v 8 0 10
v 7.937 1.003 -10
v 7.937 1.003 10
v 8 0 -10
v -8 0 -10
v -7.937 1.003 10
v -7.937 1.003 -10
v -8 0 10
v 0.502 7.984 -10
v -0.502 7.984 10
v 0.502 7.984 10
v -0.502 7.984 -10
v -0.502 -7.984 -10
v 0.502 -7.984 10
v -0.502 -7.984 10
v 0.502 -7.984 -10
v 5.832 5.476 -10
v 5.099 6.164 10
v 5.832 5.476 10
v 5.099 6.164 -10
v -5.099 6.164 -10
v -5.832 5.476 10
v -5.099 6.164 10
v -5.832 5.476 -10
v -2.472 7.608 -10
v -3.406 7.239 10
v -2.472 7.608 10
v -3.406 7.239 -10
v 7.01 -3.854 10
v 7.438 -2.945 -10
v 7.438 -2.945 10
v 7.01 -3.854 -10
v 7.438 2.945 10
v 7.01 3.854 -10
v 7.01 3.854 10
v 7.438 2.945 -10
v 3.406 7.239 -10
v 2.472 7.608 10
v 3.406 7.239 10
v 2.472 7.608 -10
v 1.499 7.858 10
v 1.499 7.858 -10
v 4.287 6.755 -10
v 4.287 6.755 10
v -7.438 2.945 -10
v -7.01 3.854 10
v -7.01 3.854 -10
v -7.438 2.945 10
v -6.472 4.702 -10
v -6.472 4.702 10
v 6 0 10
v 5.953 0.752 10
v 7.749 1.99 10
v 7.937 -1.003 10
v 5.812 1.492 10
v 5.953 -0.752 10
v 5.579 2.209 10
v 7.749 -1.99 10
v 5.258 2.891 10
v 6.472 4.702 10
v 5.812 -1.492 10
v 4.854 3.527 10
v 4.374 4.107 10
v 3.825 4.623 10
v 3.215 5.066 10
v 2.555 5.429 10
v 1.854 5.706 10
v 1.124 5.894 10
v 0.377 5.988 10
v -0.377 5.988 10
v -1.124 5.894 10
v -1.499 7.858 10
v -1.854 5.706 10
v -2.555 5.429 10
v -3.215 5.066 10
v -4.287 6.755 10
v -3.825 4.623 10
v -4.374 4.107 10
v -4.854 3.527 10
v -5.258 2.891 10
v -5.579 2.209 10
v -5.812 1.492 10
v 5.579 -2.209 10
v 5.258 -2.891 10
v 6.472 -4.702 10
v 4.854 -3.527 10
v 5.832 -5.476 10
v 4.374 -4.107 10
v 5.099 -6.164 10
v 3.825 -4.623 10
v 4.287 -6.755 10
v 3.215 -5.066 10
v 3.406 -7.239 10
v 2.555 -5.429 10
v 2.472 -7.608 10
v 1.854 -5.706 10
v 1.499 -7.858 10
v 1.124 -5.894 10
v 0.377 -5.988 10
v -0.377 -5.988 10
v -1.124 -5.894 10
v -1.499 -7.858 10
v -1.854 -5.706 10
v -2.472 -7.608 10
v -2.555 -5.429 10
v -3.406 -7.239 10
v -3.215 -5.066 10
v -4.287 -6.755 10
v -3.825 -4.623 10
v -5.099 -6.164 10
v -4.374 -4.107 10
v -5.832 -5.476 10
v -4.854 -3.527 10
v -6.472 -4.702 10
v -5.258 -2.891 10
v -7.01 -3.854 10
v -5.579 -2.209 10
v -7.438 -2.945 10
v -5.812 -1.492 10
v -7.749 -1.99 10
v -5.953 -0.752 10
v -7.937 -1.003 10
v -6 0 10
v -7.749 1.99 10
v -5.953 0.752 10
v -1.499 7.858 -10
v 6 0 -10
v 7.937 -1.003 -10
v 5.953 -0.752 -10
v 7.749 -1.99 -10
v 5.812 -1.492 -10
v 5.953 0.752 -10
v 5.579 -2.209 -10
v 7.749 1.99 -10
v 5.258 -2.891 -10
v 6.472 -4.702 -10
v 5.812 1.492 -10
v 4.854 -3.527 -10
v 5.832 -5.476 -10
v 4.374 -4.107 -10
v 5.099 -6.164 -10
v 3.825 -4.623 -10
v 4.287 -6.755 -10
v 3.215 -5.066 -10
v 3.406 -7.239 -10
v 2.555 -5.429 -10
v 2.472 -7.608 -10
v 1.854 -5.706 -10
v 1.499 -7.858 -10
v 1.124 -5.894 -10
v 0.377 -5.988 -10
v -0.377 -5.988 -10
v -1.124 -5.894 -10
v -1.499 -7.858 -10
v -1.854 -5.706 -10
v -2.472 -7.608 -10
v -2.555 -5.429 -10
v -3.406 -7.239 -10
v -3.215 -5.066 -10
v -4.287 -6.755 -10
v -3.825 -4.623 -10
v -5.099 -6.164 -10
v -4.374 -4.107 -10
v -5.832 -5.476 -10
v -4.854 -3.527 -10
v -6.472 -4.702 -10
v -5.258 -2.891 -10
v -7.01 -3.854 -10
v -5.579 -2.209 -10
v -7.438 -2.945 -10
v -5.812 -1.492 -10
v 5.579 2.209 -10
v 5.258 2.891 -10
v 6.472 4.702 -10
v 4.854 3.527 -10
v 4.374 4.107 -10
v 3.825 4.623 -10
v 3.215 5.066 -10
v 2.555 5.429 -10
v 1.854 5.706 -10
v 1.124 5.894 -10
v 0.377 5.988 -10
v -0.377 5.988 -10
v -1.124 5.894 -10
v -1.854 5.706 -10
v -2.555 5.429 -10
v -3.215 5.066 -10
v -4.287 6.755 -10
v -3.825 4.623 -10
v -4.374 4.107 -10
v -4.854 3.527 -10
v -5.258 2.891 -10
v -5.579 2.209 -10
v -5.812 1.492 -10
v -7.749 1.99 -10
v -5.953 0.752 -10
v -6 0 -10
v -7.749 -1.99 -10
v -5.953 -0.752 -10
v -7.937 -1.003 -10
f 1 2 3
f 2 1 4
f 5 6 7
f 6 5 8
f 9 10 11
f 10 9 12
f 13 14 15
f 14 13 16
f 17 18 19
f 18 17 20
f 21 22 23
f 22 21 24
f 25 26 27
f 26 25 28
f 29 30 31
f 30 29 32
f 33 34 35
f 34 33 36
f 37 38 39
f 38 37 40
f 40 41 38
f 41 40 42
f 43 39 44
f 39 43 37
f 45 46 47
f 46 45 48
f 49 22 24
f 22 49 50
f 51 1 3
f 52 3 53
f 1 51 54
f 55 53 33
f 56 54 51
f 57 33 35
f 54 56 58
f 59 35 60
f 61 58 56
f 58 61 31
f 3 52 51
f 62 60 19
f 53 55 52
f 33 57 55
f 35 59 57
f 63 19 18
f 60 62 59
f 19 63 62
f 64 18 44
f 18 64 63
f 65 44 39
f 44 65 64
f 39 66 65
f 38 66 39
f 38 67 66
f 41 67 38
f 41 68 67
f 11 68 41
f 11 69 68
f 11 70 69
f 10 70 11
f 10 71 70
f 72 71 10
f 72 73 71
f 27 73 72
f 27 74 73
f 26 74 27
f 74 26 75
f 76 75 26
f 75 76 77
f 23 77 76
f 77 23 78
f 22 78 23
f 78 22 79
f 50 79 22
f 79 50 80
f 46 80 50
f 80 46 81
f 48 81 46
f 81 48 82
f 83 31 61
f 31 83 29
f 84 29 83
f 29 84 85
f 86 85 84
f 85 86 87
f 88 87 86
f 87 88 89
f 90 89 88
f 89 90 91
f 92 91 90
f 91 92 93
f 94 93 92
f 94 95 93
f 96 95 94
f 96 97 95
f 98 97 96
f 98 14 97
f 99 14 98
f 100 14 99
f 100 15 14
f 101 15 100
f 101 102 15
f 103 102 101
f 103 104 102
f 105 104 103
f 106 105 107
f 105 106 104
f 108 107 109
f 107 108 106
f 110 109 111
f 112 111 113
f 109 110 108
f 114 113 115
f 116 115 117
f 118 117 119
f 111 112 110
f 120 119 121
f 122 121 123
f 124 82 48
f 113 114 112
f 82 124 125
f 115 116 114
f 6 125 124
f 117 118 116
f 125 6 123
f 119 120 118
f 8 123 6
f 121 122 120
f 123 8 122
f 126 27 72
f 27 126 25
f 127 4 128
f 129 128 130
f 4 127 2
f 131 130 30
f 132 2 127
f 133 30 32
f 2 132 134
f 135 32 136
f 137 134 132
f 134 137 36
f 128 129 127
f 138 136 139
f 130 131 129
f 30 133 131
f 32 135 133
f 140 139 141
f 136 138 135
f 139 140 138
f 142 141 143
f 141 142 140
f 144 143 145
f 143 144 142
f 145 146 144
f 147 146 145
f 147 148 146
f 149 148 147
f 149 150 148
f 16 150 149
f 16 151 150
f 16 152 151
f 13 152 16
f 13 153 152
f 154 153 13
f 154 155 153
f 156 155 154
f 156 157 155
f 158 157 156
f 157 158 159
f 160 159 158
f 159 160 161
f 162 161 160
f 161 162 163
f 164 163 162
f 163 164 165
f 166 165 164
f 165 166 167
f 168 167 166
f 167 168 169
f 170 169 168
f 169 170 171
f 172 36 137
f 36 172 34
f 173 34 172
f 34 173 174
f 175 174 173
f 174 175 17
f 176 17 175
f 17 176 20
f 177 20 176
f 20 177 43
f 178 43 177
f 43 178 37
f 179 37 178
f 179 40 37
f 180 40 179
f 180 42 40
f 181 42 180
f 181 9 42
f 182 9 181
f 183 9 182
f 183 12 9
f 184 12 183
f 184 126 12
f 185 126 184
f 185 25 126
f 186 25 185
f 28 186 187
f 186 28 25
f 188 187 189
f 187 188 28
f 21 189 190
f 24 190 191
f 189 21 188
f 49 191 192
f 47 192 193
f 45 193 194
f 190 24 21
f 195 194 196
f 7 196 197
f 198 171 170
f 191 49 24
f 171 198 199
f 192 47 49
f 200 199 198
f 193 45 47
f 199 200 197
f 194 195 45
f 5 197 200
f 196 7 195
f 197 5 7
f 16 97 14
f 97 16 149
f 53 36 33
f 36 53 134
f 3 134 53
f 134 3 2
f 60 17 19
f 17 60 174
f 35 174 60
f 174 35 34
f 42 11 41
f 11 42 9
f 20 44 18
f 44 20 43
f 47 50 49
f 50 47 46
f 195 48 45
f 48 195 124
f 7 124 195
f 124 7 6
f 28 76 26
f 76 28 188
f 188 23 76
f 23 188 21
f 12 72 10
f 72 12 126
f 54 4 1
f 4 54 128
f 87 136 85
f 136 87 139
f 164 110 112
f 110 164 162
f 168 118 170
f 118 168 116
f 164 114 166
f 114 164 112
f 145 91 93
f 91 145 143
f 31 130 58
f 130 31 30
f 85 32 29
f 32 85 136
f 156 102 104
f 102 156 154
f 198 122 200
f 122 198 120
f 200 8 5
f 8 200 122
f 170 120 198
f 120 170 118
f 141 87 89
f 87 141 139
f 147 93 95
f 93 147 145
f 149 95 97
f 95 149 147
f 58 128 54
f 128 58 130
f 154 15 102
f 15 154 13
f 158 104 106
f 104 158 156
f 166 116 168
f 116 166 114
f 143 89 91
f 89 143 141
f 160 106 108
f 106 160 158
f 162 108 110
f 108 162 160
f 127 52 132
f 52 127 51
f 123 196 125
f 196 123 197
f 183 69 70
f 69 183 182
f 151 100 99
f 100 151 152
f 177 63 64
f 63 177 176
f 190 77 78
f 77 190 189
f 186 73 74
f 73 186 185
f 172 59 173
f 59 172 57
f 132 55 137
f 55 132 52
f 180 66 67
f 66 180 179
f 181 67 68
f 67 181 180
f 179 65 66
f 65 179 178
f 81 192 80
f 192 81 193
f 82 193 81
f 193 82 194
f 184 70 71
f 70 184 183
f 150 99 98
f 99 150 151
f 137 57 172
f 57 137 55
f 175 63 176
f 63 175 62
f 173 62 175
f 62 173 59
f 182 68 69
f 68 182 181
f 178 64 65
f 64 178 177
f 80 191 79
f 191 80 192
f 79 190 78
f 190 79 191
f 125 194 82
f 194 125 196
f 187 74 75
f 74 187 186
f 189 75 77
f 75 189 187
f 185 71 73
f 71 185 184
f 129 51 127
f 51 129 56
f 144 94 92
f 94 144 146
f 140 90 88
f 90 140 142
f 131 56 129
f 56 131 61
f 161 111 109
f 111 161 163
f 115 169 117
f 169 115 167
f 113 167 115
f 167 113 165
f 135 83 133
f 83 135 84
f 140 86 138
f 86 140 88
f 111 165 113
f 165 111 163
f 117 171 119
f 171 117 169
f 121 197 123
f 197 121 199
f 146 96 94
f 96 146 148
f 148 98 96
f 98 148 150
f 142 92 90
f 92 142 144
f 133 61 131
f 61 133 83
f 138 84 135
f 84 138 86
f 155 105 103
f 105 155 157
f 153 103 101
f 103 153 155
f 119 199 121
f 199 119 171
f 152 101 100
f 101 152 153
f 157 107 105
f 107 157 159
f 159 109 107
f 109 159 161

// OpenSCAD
$fn = 50;


difference() {
	union() {
		translate(v = [0, 0, -10.0000000000]) {
			cylinder(h = 20, r = 8.0000000000);
		}
	}
	union() {
		translate(v = [0, 0, -100.0000000000]) {
			cylinder(h = 200, r = 6);
		}
	}
}
